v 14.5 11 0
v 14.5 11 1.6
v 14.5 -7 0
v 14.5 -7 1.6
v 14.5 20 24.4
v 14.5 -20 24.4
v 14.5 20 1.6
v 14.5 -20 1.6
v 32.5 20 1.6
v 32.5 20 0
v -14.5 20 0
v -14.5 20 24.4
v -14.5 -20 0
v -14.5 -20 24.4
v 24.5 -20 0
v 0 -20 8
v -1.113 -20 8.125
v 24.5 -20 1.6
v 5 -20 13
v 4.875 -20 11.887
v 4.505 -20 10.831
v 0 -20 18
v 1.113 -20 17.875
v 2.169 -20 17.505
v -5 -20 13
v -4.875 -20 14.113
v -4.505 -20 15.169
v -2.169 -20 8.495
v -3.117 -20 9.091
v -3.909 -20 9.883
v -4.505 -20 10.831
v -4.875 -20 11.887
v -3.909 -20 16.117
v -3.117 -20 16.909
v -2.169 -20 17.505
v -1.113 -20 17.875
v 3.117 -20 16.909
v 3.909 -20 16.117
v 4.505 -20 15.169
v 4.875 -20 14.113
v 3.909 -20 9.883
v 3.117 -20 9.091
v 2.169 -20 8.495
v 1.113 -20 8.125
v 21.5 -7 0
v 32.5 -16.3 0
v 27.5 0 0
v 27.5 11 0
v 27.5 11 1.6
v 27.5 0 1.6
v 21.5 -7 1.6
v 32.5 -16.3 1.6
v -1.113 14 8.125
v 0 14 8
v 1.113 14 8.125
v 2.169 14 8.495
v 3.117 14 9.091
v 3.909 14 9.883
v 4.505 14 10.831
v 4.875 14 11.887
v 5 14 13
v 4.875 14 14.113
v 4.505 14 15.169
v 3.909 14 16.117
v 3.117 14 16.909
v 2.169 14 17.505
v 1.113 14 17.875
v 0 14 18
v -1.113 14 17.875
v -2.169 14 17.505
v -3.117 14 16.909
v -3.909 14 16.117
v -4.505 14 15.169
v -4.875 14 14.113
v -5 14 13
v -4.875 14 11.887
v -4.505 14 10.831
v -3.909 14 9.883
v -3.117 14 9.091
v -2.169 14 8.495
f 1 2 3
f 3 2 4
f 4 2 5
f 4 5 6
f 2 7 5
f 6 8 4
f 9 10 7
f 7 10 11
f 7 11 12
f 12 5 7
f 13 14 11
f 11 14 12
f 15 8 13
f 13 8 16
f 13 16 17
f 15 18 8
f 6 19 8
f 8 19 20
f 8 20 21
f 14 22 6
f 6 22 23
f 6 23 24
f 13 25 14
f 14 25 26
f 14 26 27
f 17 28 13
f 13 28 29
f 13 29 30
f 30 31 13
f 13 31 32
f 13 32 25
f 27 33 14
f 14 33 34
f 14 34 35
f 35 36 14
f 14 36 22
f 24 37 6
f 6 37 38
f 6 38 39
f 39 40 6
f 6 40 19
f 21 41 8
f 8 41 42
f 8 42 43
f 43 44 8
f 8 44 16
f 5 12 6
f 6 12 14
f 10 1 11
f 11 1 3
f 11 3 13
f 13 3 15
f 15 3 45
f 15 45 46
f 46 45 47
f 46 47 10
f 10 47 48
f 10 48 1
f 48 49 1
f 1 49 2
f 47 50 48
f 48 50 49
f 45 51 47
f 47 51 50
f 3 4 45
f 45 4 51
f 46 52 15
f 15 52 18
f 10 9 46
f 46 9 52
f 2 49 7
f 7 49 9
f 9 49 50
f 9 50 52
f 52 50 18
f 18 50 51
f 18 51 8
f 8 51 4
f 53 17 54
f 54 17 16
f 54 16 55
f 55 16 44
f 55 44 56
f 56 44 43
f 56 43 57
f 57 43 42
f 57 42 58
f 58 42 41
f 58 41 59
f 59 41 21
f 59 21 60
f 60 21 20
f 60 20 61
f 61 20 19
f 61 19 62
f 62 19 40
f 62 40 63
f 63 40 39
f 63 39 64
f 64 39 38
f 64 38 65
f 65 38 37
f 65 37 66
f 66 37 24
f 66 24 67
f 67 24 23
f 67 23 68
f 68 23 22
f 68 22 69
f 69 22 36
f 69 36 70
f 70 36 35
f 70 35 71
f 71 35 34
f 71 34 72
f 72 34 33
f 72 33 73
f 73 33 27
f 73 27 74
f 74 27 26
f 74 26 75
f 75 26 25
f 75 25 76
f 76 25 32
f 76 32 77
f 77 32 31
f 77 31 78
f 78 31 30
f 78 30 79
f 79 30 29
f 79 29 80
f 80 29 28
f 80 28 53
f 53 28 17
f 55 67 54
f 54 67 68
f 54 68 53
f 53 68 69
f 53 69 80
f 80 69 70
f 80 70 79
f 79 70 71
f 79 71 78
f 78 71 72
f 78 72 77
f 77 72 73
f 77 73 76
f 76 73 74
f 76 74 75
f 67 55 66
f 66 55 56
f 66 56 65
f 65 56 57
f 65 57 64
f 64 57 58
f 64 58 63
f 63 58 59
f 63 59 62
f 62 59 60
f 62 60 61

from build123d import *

# Parameters (mm, degrees)
CROQUIS1_W              = 29
CROQUIS1_H              = 40
SALIENTE_EXTRUIR1_DEPTH = 24.4
SALIENTE_EXTRUIR2_DEPTH = 1.6
CROQUIS3_R              = 5
CORTAR_EXTRUIR1_DEPTH   = 34


with BuildPart() as part:
    # Croquis1 → Saliente-Extruir1 (new body)
    with BuildSketch(Plane.XY):
        Rectangle(CROQUIS1_W, CROQUIS1_H)
    extrude(amount=SALIENTE_EXTRUIR1_DEPTH)

    # Croquis2 → Saliente-Extruir2 (add)
    with BuildSketch(Plane.XY):
        Polygon((14.5, 20), (32.5, 20), (32.5, -16.3), (24.5, -20), (14.5, -20), (14.5, -7), (21.5, -7), (27.5, 0), (27.5, 11), (14.5, 11), align=None)
    extrude(amount=SALIENTE_EXTRUIR2_DEPTH)

    # Croquis3 → Cortar-Extruir1 (cut)
    with BuildSketch(Plane.XZ.offset(20)):
        with Locations(Location((0, 13, 0), (0, 0, 270))):
            Circle(CROQUIS3_R)
    extrude(amount=-CORTAR_EXTRUIR1_DEPTH, mode=Mode.SUBTRACT)


solid = part.part
